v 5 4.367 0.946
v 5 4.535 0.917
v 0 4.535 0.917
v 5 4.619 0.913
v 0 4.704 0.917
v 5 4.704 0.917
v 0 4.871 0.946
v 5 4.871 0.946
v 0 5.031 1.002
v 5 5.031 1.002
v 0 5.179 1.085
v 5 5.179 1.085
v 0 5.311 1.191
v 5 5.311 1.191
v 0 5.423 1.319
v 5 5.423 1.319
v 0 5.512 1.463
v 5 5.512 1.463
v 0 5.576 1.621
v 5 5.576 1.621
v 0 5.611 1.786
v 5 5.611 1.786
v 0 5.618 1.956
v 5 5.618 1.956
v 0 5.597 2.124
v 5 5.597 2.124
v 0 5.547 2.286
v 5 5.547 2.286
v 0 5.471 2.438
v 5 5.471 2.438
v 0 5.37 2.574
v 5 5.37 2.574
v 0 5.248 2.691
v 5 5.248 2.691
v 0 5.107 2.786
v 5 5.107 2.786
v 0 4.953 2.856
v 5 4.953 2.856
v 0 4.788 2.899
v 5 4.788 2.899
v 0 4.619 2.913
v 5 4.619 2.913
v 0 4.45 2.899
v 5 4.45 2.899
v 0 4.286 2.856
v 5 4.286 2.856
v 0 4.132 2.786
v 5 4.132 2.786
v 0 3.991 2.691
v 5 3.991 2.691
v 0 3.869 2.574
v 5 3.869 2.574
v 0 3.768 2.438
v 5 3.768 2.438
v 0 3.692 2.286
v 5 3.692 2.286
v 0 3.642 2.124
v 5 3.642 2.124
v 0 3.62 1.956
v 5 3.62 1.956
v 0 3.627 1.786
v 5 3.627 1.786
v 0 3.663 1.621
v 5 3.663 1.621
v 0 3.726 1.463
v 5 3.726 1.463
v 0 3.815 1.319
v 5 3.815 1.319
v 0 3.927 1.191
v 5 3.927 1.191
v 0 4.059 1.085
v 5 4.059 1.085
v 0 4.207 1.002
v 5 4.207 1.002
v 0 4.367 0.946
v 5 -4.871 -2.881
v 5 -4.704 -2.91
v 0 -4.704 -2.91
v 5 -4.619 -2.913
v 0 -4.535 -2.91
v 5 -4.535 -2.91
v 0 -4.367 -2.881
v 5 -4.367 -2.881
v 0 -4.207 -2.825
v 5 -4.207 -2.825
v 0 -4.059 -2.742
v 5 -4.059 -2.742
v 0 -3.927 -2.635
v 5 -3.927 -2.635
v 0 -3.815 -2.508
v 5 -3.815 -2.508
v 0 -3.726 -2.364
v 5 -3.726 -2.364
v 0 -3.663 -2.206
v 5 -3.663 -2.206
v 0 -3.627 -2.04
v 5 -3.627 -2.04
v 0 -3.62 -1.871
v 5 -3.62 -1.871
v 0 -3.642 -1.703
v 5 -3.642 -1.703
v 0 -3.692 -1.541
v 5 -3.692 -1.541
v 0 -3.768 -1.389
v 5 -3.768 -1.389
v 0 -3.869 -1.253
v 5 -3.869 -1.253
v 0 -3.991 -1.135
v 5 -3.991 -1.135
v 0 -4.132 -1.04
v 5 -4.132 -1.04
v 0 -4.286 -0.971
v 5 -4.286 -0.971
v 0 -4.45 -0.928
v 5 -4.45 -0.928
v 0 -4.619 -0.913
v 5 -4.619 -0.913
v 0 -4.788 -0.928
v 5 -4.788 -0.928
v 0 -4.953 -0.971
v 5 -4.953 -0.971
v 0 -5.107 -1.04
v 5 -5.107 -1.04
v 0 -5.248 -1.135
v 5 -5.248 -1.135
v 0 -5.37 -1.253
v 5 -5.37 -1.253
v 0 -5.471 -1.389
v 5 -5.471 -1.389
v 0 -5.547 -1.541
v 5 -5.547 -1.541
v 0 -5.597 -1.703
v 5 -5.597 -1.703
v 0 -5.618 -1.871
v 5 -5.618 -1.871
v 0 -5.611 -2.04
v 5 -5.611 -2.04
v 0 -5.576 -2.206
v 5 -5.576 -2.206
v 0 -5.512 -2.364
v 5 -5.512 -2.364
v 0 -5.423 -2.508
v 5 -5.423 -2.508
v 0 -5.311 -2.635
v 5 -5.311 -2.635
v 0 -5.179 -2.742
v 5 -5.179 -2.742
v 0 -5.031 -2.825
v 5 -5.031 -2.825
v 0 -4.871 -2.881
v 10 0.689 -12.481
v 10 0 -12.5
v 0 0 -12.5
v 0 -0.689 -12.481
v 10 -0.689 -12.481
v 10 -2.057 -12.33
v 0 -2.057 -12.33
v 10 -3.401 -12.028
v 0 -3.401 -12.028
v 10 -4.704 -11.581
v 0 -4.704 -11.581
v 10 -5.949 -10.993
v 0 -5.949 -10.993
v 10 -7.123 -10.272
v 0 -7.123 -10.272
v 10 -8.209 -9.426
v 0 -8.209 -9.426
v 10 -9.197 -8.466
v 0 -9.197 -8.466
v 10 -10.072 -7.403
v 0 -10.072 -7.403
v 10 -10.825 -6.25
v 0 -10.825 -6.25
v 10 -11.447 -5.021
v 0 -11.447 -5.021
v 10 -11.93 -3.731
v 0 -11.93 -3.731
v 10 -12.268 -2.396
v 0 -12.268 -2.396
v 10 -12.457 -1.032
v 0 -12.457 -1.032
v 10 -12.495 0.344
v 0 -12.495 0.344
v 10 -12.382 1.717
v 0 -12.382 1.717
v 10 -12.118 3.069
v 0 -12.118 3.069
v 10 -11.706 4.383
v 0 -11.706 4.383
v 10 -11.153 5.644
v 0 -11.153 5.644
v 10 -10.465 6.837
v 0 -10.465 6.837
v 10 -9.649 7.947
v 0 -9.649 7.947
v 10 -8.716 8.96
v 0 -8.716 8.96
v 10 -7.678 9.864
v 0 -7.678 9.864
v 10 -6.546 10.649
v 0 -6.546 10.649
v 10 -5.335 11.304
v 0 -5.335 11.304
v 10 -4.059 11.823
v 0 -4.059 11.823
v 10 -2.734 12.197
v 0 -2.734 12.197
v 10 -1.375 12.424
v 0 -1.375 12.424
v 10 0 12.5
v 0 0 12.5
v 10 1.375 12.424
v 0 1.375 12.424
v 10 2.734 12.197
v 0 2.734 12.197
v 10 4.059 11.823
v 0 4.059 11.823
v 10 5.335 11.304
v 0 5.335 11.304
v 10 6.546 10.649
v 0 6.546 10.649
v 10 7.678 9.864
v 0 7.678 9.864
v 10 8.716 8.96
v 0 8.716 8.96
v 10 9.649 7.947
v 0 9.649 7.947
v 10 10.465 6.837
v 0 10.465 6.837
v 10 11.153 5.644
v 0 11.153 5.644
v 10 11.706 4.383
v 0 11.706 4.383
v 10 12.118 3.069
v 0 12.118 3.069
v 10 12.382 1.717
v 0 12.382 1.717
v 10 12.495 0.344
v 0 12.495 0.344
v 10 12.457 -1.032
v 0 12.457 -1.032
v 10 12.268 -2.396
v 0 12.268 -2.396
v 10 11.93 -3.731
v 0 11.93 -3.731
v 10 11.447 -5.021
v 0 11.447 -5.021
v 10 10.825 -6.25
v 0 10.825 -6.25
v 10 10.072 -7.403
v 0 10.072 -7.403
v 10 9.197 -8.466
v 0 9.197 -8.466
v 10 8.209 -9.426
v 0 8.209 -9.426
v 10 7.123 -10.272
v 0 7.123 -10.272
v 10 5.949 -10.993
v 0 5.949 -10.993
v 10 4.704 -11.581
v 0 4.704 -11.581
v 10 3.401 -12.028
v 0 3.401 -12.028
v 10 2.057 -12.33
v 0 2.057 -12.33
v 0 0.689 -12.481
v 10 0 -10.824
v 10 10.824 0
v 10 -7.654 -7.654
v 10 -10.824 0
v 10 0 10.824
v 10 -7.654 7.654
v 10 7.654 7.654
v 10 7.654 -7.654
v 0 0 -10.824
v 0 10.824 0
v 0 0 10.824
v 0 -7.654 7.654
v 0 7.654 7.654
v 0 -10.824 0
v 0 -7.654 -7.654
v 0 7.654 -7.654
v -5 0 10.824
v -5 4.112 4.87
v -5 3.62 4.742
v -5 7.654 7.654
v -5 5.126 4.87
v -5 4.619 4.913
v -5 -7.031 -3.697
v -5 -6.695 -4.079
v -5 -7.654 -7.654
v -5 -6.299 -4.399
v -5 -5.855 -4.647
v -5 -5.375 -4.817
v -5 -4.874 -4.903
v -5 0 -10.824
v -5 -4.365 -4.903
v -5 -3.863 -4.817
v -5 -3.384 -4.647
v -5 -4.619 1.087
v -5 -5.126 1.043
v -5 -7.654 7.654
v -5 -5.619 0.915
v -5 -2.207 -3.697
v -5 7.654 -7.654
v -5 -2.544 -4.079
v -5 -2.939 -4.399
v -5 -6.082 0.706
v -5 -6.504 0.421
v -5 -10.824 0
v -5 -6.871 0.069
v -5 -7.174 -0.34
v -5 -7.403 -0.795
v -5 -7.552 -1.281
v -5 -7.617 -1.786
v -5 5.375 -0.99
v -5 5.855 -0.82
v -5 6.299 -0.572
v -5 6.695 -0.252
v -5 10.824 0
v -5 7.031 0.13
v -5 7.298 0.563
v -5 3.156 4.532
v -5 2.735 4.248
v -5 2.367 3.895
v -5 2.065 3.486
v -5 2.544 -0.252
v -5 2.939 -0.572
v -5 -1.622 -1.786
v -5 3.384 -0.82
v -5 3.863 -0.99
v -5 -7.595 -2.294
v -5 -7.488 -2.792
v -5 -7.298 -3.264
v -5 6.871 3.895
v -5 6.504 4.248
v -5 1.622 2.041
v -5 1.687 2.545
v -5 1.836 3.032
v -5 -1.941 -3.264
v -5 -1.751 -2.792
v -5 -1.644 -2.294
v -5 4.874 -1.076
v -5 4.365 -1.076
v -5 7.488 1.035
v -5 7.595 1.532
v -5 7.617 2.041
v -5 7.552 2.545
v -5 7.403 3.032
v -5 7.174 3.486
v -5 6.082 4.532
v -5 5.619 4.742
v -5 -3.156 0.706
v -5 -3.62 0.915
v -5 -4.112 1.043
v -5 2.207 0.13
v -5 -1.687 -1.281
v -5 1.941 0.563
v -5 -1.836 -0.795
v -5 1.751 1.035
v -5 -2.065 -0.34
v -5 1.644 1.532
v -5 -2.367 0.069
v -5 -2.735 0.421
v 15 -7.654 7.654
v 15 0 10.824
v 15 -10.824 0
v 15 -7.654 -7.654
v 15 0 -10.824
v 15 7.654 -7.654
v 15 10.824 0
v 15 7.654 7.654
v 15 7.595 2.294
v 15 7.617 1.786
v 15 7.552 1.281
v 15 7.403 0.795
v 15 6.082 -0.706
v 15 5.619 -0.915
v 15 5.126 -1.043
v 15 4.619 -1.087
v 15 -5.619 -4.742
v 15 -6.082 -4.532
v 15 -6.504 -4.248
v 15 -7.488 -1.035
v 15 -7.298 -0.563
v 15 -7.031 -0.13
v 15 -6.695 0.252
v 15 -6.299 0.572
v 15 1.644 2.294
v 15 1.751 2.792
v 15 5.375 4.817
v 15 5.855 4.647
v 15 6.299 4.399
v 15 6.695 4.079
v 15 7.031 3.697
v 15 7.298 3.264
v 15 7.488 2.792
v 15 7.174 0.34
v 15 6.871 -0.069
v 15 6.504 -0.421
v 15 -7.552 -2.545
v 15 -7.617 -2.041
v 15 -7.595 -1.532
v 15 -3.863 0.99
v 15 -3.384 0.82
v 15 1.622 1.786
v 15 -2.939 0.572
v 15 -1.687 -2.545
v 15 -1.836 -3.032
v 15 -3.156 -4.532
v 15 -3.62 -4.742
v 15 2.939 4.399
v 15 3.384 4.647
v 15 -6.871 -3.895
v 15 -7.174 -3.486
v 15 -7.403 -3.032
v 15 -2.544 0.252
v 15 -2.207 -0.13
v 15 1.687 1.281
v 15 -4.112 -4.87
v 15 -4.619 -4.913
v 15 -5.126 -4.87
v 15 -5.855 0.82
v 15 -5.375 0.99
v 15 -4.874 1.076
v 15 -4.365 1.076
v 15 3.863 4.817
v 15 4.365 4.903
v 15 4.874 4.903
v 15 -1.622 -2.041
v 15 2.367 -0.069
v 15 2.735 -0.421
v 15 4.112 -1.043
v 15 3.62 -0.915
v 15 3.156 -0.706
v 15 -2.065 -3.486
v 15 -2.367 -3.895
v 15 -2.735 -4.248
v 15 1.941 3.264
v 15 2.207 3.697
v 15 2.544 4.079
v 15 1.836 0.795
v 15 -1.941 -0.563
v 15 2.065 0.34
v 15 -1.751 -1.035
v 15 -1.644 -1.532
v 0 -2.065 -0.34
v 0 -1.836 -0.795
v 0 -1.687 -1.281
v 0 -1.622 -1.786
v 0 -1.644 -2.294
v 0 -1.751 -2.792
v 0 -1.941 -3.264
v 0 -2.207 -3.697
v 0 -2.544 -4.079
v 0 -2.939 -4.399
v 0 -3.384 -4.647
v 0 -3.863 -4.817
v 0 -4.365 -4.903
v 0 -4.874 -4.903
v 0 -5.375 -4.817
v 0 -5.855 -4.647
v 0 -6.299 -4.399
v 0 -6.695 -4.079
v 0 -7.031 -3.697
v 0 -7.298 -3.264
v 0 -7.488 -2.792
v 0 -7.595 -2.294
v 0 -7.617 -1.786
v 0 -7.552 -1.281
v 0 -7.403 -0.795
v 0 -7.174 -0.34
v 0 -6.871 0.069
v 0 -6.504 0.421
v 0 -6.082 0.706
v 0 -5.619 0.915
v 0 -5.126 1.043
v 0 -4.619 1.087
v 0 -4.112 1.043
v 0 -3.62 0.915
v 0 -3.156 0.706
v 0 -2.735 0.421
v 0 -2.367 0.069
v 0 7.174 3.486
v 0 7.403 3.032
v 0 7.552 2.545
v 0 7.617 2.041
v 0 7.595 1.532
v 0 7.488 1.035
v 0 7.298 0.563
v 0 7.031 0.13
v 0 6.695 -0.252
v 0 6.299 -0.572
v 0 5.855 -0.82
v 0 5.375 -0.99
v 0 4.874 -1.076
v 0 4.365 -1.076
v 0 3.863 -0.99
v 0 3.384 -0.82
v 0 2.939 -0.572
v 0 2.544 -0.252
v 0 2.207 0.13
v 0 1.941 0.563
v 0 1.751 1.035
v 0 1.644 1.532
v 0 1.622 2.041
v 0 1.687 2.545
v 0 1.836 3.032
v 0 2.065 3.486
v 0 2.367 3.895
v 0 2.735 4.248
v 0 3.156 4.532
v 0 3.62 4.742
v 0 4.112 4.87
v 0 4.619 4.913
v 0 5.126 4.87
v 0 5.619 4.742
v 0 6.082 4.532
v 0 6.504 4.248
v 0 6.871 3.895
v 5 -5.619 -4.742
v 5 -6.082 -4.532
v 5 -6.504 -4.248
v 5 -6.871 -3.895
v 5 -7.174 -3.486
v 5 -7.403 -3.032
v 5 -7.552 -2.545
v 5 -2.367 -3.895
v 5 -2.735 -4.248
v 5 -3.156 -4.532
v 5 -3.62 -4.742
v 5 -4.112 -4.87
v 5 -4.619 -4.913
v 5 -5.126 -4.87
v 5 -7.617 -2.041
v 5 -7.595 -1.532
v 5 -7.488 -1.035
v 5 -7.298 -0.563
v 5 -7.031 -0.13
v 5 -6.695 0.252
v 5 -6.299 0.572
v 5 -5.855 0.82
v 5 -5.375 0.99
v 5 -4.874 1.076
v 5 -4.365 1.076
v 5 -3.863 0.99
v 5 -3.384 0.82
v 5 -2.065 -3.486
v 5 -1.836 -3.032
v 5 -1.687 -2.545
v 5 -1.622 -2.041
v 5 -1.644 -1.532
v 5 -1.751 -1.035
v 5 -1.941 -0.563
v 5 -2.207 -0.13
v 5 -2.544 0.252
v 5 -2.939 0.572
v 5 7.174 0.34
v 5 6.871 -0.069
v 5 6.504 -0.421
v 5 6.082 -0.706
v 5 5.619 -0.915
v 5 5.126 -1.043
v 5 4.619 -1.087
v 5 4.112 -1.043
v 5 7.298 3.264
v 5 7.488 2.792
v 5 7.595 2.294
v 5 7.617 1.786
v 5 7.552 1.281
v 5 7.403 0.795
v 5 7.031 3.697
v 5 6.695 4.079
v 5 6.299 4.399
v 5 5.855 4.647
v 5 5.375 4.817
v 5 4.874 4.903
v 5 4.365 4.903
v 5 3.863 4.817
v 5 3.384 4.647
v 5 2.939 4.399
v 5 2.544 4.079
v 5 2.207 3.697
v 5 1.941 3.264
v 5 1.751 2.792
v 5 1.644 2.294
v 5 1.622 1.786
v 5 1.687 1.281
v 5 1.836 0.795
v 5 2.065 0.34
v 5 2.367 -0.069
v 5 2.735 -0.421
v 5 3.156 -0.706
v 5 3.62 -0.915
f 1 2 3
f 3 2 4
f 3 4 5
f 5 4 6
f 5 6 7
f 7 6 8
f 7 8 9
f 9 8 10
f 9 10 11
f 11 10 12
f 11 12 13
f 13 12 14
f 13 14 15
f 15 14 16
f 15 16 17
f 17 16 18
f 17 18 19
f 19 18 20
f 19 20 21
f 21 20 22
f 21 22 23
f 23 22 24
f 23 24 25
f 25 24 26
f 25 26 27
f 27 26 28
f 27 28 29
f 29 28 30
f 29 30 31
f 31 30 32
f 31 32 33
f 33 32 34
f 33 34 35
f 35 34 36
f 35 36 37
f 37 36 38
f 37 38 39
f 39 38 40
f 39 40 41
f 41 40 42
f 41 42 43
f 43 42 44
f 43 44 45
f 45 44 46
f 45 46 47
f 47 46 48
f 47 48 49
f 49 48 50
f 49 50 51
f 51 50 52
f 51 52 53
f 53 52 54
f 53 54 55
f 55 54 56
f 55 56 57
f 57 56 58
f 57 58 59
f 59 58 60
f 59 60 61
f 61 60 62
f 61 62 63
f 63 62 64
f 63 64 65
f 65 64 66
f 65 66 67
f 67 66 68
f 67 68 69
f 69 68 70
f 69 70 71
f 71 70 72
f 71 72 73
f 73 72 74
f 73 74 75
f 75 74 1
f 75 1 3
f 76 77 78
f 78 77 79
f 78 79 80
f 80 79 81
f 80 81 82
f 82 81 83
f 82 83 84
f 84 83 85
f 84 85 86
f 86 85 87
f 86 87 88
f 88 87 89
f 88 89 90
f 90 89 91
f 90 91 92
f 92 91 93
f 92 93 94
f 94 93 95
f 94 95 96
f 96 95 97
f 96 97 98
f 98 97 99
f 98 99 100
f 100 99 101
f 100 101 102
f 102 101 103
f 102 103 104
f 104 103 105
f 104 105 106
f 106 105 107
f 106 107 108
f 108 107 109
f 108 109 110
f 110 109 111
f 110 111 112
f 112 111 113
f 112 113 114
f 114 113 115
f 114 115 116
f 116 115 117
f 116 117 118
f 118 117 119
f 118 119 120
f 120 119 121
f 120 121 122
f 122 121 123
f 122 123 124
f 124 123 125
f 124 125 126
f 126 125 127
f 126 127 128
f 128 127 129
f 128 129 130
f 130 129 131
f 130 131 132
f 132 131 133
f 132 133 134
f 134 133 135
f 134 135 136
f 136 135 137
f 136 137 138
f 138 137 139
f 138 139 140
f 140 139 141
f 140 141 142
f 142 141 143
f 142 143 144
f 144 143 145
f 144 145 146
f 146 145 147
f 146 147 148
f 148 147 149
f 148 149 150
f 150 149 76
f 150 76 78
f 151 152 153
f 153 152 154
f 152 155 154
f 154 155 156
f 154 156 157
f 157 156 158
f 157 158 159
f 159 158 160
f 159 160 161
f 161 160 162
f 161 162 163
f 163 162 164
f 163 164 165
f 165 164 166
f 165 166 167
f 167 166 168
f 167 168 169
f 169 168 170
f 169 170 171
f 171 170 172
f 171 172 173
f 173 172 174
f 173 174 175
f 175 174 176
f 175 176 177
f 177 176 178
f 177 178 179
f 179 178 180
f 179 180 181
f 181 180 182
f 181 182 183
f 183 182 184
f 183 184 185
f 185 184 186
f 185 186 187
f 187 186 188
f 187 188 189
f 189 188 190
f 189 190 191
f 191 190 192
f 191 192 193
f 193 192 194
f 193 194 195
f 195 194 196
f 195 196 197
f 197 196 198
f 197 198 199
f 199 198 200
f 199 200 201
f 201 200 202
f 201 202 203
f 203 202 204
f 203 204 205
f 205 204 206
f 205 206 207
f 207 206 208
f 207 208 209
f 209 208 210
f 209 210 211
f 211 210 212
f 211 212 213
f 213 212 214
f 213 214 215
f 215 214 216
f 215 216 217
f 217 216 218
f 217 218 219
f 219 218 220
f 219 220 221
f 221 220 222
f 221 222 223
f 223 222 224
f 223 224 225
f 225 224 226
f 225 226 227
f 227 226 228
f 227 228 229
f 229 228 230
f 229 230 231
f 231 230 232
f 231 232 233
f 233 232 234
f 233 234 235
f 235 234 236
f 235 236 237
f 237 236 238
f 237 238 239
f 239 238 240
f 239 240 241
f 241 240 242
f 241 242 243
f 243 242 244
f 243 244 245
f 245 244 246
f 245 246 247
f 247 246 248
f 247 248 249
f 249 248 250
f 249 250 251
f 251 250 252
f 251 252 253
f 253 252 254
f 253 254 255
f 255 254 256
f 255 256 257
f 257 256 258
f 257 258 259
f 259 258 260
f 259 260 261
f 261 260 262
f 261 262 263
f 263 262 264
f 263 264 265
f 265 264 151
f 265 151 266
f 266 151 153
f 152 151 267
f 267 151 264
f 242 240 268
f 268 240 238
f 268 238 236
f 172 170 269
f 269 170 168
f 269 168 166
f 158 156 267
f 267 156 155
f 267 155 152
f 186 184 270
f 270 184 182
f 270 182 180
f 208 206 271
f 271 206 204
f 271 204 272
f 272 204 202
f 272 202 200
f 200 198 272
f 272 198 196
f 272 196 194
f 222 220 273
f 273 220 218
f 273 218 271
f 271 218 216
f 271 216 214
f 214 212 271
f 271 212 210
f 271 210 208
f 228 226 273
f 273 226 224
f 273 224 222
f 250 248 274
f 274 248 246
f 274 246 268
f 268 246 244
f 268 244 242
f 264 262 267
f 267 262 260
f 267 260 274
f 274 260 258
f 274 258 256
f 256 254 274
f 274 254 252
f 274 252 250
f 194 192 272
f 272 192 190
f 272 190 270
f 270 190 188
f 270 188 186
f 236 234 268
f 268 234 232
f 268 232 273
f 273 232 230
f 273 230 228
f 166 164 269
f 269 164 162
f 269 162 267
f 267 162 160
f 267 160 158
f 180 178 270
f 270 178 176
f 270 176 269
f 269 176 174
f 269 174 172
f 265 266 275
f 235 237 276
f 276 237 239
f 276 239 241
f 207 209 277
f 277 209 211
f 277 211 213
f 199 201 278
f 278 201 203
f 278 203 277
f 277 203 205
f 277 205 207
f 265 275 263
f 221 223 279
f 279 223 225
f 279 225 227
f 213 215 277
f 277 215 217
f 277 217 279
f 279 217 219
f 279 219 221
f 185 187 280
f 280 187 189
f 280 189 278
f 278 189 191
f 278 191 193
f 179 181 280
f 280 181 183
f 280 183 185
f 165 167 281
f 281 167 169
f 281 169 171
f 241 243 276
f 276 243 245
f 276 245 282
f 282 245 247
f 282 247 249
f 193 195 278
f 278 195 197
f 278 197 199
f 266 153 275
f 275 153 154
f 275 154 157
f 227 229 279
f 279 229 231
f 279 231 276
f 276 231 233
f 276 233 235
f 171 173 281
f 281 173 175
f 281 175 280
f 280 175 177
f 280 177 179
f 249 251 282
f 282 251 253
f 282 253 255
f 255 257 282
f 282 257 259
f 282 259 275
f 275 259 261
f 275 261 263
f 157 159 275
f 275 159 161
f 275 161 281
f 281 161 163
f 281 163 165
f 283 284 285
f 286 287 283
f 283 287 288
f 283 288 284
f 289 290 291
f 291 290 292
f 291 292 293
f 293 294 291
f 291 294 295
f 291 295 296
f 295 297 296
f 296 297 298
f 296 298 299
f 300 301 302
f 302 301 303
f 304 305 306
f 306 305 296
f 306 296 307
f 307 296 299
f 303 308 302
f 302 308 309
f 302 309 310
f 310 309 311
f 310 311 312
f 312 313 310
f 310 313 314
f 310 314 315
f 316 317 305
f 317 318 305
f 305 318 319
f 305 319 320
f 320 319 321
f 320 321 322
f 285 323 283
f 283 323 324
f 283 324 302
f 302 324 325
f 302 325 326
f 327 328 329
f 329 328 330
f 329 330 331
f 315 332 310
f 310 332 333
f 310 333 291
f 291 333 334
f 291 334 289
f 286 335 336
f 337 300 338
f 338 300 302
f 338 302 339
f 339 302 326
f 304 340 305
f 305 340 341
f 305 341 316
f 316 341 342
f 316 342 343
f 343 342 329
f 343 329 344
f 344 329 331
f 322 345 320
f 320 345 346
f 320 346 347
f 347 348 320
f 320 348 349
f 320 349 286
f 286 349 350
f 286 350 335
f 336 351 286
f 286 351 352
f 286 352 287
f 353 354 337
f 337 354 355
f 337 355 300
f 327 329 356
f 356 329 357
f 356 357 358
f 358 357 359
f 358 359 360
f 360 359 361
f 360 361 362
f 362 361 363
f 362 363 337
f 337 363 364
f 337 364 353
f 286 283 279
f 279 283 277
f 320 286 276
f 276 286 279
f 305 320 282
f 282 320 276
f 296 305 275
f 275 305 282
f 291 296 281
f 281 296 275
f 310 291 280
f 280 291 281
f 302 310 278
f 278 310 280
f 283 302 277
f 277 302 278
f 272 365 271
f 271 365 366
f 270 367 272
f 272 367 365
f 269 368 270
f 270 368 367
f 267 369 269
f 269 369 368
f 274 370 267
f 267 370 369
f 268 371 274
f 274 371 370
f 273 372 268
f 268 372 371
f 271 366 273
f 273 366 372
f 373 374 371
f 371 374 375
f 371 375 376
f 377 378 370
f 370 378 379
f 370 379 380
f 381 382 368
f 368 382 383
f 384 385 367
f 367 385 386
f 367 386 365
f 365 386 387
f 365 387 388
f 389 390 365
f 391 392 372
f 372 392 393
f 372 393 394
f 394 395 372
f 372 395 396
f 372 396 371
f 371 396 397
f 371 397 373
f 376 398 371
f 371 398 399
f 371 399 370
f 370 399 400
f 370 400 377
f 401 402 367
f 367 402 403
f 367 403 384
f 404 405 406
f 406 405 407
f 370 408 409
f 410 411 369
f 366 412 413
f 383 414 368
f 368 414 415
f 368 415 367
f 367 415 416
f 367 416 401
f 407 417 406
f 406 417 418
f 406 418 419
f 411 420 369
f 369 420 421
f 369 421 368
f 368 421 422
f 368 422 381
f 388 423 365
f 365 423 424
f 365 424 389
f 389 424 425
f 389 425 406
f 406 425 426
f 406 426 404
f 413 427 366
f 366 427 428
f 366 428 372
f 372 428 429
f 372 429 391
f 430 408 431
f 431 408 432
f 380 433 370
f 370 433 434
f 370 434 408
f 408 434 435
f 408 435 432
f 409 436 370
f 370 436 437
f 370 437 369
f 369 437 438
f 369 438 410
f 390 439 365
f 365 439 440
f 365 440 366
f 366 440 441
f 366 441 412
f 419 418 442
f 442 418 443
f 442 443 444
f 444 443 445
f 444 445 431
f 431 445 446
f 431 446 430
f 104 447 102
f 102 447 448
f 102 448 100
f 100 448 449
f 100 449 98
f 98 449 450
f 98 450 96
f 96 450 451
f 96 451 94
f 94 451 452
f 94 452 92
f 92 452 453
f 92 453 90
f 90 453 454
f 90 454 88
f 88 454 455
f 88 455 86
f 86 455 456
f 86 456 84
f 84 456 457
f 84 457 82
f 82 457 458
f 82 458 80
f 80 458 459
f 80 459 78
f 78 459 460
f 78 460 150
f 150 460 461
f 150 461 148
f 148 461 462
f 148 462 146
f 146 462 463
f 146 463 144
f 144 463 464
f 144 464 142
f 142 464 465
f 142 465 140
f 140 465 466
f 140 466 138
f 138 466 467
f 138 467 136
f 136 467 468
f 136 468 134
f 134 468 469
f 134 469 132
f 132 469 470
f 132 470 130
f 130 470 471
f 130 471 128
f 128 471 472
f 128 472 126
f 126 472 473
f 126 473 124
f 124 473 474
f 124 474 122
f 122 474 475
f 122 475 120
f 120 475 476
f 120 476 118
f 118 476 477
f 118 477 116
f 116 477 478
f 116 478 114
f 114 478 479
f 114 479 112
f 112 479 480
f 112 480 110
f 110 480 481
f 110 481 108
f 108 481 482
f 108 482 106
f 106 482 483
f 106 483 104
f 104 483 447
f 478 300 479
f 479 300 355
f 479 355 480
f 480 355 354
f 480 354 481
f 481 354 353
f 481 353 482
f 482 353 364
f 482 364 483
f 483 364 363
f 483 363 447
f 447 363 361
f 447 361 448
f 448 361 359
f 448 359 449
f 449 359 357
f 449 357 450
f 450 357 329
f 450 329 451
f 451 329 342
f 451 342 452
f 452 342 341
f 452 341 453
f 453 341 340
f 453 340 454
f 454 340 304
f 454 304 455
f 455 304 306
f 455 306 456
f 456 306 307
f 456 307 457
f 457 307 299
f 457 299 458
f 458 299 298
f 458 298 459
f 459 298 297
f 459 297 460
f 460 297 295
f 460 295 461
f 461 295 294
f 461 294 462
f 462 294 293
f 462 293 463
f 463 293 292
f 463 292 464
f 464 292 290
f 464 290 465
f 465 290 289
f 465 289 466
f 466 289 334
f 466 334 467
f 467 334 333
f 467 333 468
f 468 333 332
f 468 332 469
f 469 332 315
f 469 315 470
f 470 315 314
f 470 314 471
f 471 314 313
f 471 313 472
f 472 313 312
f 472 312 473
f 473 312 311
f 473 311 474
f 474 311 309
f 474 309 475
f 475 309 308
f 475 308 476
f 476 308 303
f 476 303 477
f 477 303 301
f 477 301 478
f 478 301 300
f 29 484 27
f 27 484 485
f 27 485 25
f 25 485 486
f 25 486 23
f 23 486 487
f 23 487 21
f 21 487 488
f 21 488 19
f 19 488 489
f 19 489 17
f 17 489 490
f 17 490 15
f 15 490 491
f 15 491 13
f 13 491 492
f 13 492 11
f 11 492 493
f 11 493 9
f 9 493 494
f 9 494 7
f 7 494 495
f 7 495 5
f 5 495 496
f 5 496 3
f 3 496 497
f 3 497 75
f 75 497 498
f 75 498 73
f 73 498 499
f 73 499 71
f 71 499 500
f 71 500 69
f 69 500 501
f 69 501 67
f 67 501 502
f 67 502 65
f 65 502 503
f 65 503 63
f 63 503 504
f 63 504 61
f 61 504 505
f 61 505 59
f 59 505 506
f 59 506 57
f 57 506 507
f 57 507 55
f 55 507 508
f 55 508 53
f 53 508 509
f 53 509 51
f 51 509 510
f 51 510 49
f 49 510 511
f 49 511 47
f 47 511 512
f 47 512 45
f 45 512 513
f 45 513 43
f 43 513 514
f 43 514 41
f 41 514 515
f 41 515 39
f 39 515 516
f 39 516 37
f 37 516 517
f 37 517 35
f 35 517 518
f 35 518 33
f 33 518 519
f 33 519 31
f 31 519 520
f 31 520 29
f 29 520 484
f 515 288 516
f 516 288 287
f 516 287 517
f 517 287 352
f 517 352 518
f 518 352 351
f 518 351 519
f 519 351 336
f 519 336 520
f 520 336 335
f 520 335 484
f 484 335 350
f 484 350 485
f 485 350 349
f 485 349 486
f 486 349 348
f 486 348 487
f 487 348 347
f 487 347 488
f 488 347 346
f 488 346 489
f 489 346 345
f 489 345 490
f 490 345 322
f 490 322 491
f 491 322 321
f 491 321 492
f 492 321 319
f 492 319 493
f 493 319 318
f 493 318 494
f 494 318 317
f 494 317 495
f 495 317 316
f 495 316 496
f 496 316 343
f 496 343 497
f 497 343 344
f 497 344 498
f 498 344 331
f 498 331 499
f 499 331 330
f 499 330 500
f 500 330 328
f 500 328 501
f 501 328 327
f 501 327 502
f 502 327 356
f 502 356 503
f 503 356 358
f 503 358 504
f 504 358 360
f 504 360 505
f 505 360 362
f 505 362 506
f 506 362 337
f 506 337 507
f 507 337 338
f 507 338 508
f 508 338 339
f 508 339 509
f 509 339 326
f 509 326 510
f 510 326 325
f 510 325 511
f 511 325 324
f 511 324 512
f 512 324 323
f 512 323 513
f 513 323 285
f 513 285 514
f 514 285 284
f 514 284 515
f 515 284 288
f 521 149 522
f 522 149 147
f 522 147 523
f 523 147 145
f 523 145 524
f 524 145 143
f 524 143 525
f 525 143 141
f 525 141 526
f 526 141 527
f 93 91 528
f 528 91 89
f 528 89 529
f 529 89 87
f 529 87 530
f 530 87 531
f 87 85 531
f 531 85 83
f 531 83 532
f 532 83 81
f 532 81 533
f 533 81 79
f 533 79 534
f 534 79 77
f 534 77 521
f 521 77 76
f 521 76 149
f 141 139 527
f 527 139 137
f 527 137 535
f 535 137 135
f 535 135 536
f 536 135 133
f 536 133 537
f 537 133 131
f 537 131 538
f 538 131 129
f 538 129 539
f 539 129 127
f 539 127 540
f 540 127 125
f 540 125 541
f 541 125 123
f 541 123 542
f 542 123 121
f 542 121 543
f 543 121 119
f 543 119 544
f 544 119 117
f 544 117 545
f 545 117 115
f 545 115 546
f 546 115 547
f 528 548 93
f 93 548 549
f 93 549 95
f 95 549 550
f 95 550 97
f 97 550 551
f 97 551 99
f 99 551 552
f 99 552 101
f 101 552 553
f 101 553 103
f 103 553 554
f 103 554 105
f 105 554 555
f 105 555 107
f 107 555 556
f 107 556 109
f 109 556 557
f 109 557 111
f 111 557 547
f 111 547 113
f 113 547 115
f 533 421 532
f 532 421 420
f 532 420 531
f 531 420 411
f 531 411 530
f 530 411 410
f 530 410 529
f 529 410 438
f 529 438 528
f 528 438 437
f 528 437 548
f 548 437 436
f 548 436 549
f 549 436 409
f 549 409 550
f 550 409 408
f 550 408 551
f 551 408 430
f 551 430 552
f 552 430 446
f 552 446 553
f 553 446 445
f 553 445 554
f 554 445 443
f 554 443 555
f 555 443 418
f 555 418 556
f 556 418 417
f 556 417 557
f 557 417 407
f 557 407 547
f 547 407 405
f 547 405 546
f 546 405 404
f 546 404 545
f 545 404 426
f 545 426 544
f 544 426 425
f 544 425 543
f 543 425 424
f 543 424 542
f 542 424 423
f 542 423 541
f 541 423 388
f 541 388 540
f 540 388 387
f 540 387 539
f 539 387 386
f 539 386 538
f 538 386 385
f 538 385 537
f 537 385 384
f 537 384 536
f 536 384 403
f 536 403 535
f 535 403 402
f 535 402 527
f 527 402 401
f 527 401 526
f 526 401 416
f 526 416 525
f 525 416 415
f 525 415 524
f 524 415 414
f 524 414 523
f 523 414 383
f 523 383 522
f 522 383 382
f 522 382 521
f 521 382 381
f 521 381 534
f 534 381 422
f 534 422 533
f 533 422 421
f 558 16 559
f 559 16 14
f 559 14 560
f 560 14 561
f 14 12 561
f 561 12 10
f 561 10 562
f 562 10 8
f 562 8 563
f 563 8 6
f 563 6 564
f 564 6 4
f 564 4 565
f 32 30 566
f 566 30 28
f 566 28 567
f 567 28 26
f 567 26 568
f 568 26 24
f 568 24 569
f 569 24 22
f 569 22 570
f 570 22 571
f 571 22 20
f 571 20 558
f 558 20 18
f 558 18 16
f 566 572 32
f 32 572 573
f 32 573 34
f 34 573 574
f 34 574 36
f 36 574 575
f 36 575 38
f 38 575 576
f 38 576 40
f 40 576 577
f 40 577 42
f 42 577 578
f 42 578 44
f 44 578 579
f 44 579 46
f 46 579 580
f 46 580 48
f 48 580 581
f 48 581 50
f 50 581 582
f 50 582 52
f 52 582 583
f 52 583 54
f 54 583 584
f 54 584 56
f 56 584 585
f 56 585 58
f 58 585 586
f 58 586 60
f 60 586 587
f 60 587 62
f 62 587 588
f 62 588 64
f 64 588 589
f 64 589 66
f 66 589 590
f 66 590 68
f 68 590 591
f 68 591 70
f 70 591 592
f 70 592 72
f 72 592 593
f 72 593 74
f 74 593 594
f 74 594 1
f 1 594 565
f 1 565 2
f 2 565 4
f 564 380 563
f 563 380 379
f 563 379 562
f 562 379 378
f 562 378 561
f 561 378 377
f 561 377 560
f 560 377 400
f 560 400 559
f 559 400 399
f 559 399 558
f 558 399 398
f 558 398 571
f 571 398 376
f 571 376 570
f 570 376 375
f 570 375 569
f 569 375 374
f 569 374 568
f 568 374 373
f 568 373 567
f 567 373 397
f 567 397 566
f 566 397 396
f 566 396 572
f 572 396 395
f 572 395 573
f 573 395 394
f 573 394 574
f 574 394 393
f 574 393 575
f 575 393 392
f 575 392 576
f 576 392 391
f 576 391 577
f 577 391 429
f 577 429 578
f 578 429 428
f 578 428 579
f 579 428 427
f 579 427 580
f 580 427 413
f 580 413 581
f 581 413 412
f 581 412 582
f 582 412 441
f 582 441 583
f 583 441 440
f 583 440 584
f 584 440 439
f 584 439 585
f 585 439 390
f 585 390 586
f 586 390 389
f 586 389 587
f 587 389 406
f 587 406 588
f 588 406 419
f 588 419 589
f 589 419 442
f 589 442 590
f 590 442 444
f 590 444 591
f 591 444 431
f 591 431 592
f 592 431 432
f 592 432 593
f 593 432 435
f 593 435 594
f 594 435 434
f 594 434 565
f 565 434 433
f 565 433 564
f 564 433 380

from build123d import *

# Parameters (mm, degrees)
SKETCH2_R                = 12.5
BOSS_EXTRUDE1_DEPTH      = 10
BOSS_EXTRUDE3_DEPTH      = 5
BOSS_EXTRUDE3_DEPTH_BACK = 15
SKETCH4_R                = 1
CUT_EXTRUDE1_DEPTH       = 20
SKETCH5_R                = 3
CUT_EXTRUDE2_DEPTH       = 5
CUT_EXTRUDE3_START       = -10
SKETCH6_R                = 3
CUT_EXTRUDE3_DEPTH       = 10


with BuildPart() as part:
    # Sketch2 → Boss-Extrude1 (new body)
    with BuildSketch(Plane(origin=(0, 0, 0), x_dir=(0, 0, -1), z_dir=(1, 0, 0))):
        Circle(SKETCH2_R)
    extrude(amount=BOSS_EXTRUDE1_DEPTH)

    # Sketch3 → Boss-Extrude3 (add, two sides: drawn at the far end of the back side and taken through both)
    with BuildSketch(Plane.ZY.offset(-BOSS_EXTRUDE3_DEPTH_BACK)):
        Polygon((10.823922003, 0), (7.653668647, 7.653668647), (0, 10.823922003), (-7.653668647, 7.653668647), (-10.823922003, 0), (-7.653668647, -7.653668647), (0, -10.823922003), (7.653668647, -7.653668647), align=None)
    extrude(amount=BOSS_EXTRUDE3_DEPTH + BOSS_EXTRUDE3_DEPTH_BACK)

    # Sketch4 → Cut-Extrude1 (cut)
    with BuildSketch(Plane.ZY.offset(5)):
        with Locations((1.913417162, 4.619397663)):
            Circle(SKETCH4_R)
        with Locations((-1.913417162, -4.619397663)):
            Circle(SKETCH4_R)
    extrude(amount=-CUT_EXTRUDE1_DEPTH, mode=Mode.SUBTRACT)

    # Sketch5 → Cut-Extrude2 (cut)
    with BuildSketch(Plane.ZY.offset(5)):
        with Locations((-1.913417162, -4.619397663)):
            Circle(SKETCH5_R)
        with Locations((1.913417162, 4.619397663)):
            Circle(SKETCH5_R)
    extrude(amount=-CUT_EXTRUDE2_DEPTH, mode=Mode.SUBTRACT)

    # Sketch6 → Cut-Extrude3 (cut)
    with BuildSketch(Plane(origin=(15, 0, 0), x_dir=(0, 0, -1), z_dir=(1, 0, 0)).offset(CUT_EXTRUDE3_START)):
        with Locations(Location((1.913417162, -4.619397663, 0), (0, 0, 180))):
            Circle(SKETCH6_R)
        with Locations(Location((-1.913417162, 4.619397663, 0), (0, 0, 180))):
            Circle(SKETCH6_R)
    extrude(amount=CUT_EXTRUDE3_DEPTH, mode=Mode.SUBTRACT)


solid = part.part
